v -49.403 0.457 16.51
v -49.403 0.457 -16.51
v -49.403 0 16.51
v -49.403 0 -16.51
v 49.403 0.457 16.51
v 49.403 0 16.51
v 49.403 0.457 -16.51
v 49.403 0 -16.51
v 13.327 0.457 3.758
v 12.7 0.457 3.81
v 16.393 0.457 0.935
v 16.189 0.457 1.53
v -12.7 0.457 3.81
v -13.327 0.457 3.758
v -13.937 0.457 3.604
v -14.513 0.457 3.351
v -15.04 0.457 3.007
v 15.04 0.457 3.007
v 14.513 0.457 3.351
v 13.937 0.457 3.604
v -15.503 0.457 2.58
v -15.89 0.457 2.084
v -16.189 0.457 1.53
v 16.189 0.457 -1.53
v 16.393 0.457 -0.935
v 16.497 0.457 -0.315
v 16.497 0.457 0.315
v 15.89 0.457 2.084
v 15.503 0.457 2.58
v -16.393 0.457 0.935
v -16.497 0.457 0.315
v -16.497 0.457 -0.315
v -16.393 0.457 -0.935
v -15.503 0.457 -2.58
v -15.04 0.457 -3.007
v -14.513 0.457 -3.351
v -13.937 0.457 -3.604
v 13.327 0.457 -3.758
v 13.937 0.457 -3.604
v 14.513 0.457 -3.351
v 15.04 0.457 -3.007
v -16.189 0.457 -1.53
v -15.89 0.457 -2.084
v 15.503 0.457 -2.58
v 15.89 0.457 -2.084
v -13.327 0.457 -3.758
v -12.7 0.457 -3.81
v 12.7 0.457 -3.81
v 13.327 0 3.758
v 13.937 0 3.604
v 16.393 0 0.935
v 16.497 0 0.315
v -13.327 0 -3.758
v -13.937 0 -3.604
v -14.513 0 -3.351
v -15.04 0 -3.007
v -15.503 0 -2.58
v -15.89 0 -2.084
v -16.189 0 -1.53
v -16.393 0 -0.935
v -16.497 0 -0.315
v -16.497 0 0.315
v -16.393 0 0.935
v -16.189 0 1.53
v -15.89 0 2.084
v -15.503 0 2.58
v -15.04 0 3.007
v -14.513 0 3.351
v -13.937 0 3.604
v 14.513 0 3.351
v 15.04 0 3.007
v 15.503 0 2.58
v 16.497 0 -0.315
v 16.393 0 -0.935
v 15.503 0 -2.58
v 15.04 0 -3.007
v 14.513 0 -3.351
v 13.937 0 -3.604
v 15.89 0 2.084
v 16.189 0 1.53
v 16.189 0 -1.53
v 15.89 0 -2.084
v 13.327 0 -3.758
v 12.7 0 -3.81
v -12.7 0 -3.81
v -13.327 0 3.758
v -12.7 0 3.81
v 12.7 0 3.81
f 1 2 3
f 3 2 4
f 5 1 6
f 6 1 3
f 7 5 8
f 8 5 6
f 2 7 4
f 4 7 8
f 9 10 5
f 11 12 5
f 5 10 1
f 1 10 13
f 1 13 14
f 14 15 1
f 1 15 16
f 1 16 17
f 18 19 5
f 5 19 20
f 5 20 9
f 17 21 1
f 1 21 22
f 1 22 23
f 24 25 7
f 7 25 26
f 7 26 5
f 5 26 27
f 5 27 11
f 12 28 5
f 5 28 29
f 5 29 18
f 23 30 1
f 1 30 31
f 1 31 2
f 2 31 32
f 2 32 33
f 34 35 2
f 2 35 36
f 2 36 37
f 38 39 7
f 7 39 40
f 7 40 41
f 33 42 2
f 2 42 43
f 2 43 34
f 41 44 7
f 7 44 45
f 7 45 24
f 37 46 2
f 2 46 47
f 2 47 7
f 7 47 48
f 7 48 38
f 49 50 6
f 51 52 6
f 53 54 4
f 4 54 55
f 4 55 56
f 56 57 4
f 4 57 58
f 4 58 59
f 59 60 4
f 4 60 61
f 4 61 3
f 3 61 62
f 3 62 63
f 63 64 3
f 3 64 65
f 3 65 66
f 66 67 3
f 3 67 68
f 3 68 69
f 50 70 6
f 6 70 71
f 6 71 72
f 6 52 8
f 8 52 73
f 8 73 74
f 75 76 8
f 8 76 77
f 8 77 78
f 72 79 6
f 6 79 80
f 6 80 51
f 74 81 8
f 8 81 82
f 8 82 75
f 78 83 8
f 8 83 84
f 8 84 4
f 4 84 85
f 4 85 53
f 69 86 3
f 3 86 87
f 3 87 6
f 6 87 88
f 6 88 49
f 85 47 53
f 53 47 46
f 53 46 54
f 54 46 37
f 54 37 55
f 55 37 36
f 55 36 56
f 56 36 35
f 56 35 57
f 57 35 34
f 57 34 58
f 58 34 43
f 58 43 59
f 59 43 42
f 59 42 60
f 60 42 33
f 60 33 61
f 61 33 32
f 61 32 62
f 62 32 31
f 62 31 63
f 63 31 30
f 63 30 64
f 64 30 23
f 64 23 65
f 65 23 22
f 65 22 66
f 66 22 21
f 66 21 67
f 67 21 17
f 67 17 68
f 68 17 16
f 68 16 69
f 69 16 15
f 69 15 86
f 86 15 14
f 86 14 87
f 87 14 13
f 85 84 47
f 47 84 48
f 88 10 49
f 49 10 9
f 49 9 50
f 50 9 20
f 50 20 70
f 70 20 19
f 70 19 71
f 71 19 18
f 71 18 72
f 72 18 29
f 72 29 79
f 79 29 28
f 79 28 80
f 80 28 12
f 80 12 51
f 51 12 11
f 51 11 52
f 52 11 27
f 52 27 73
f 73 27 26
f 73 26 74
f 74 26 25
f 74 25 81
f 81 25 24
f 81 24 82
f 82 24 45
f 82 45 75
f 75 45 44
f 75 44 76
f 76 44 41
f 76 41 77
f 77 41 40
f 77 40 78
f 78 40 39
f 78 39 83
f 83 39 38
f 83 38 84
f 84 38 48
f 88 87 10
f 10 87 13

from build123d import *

# Parameters (mm, degrees)
SKETCH1_W           = 98.806
SKETCH1_H           = 33.02
BOSS_EXTRUDE1_DEPTH = 0.4572
CUT_EXTRUDE1_DEPTH  = 1.4572


with BuildPart() as part:
    # Sketch1 → Boss-Extrude1 (new body)
    with BuildSketch(Plane(origin=(0, 0, 0), x_dir=(1, 0, 0), z_dir=(0, 1, 0))):
        Rectangle(SKETCH1_W, SKETCH1_H)
    extrude(amount=BOSS_EXTRUDE1_DEPTH)

    # Sketch2 → Cut-Extrude1 (cut, through all)
    with BuildSketch(Plane(origin=(0, 0.4572, 0), x_dir=(1, 0, 0), z_dir=(0, 1, 0))):
        with BuildLine():
            Line((-12.7, 3.81), (12.7, 3.81))
            ThreePointArc((12.7, 3.81), (16.51, 0), (12.7, -3.81))
            Line((12.7, -3.81), (-12.7, -3.81))
            ThreePointArc((-12.7, -3.81), (-16.51, 0), (-12.7, 3.81))
        make_face()
    extrude(amount=-CUT_EXTRUDE1_DEPTH, mode=Mode.SUBTRACT)


solid = part.part
